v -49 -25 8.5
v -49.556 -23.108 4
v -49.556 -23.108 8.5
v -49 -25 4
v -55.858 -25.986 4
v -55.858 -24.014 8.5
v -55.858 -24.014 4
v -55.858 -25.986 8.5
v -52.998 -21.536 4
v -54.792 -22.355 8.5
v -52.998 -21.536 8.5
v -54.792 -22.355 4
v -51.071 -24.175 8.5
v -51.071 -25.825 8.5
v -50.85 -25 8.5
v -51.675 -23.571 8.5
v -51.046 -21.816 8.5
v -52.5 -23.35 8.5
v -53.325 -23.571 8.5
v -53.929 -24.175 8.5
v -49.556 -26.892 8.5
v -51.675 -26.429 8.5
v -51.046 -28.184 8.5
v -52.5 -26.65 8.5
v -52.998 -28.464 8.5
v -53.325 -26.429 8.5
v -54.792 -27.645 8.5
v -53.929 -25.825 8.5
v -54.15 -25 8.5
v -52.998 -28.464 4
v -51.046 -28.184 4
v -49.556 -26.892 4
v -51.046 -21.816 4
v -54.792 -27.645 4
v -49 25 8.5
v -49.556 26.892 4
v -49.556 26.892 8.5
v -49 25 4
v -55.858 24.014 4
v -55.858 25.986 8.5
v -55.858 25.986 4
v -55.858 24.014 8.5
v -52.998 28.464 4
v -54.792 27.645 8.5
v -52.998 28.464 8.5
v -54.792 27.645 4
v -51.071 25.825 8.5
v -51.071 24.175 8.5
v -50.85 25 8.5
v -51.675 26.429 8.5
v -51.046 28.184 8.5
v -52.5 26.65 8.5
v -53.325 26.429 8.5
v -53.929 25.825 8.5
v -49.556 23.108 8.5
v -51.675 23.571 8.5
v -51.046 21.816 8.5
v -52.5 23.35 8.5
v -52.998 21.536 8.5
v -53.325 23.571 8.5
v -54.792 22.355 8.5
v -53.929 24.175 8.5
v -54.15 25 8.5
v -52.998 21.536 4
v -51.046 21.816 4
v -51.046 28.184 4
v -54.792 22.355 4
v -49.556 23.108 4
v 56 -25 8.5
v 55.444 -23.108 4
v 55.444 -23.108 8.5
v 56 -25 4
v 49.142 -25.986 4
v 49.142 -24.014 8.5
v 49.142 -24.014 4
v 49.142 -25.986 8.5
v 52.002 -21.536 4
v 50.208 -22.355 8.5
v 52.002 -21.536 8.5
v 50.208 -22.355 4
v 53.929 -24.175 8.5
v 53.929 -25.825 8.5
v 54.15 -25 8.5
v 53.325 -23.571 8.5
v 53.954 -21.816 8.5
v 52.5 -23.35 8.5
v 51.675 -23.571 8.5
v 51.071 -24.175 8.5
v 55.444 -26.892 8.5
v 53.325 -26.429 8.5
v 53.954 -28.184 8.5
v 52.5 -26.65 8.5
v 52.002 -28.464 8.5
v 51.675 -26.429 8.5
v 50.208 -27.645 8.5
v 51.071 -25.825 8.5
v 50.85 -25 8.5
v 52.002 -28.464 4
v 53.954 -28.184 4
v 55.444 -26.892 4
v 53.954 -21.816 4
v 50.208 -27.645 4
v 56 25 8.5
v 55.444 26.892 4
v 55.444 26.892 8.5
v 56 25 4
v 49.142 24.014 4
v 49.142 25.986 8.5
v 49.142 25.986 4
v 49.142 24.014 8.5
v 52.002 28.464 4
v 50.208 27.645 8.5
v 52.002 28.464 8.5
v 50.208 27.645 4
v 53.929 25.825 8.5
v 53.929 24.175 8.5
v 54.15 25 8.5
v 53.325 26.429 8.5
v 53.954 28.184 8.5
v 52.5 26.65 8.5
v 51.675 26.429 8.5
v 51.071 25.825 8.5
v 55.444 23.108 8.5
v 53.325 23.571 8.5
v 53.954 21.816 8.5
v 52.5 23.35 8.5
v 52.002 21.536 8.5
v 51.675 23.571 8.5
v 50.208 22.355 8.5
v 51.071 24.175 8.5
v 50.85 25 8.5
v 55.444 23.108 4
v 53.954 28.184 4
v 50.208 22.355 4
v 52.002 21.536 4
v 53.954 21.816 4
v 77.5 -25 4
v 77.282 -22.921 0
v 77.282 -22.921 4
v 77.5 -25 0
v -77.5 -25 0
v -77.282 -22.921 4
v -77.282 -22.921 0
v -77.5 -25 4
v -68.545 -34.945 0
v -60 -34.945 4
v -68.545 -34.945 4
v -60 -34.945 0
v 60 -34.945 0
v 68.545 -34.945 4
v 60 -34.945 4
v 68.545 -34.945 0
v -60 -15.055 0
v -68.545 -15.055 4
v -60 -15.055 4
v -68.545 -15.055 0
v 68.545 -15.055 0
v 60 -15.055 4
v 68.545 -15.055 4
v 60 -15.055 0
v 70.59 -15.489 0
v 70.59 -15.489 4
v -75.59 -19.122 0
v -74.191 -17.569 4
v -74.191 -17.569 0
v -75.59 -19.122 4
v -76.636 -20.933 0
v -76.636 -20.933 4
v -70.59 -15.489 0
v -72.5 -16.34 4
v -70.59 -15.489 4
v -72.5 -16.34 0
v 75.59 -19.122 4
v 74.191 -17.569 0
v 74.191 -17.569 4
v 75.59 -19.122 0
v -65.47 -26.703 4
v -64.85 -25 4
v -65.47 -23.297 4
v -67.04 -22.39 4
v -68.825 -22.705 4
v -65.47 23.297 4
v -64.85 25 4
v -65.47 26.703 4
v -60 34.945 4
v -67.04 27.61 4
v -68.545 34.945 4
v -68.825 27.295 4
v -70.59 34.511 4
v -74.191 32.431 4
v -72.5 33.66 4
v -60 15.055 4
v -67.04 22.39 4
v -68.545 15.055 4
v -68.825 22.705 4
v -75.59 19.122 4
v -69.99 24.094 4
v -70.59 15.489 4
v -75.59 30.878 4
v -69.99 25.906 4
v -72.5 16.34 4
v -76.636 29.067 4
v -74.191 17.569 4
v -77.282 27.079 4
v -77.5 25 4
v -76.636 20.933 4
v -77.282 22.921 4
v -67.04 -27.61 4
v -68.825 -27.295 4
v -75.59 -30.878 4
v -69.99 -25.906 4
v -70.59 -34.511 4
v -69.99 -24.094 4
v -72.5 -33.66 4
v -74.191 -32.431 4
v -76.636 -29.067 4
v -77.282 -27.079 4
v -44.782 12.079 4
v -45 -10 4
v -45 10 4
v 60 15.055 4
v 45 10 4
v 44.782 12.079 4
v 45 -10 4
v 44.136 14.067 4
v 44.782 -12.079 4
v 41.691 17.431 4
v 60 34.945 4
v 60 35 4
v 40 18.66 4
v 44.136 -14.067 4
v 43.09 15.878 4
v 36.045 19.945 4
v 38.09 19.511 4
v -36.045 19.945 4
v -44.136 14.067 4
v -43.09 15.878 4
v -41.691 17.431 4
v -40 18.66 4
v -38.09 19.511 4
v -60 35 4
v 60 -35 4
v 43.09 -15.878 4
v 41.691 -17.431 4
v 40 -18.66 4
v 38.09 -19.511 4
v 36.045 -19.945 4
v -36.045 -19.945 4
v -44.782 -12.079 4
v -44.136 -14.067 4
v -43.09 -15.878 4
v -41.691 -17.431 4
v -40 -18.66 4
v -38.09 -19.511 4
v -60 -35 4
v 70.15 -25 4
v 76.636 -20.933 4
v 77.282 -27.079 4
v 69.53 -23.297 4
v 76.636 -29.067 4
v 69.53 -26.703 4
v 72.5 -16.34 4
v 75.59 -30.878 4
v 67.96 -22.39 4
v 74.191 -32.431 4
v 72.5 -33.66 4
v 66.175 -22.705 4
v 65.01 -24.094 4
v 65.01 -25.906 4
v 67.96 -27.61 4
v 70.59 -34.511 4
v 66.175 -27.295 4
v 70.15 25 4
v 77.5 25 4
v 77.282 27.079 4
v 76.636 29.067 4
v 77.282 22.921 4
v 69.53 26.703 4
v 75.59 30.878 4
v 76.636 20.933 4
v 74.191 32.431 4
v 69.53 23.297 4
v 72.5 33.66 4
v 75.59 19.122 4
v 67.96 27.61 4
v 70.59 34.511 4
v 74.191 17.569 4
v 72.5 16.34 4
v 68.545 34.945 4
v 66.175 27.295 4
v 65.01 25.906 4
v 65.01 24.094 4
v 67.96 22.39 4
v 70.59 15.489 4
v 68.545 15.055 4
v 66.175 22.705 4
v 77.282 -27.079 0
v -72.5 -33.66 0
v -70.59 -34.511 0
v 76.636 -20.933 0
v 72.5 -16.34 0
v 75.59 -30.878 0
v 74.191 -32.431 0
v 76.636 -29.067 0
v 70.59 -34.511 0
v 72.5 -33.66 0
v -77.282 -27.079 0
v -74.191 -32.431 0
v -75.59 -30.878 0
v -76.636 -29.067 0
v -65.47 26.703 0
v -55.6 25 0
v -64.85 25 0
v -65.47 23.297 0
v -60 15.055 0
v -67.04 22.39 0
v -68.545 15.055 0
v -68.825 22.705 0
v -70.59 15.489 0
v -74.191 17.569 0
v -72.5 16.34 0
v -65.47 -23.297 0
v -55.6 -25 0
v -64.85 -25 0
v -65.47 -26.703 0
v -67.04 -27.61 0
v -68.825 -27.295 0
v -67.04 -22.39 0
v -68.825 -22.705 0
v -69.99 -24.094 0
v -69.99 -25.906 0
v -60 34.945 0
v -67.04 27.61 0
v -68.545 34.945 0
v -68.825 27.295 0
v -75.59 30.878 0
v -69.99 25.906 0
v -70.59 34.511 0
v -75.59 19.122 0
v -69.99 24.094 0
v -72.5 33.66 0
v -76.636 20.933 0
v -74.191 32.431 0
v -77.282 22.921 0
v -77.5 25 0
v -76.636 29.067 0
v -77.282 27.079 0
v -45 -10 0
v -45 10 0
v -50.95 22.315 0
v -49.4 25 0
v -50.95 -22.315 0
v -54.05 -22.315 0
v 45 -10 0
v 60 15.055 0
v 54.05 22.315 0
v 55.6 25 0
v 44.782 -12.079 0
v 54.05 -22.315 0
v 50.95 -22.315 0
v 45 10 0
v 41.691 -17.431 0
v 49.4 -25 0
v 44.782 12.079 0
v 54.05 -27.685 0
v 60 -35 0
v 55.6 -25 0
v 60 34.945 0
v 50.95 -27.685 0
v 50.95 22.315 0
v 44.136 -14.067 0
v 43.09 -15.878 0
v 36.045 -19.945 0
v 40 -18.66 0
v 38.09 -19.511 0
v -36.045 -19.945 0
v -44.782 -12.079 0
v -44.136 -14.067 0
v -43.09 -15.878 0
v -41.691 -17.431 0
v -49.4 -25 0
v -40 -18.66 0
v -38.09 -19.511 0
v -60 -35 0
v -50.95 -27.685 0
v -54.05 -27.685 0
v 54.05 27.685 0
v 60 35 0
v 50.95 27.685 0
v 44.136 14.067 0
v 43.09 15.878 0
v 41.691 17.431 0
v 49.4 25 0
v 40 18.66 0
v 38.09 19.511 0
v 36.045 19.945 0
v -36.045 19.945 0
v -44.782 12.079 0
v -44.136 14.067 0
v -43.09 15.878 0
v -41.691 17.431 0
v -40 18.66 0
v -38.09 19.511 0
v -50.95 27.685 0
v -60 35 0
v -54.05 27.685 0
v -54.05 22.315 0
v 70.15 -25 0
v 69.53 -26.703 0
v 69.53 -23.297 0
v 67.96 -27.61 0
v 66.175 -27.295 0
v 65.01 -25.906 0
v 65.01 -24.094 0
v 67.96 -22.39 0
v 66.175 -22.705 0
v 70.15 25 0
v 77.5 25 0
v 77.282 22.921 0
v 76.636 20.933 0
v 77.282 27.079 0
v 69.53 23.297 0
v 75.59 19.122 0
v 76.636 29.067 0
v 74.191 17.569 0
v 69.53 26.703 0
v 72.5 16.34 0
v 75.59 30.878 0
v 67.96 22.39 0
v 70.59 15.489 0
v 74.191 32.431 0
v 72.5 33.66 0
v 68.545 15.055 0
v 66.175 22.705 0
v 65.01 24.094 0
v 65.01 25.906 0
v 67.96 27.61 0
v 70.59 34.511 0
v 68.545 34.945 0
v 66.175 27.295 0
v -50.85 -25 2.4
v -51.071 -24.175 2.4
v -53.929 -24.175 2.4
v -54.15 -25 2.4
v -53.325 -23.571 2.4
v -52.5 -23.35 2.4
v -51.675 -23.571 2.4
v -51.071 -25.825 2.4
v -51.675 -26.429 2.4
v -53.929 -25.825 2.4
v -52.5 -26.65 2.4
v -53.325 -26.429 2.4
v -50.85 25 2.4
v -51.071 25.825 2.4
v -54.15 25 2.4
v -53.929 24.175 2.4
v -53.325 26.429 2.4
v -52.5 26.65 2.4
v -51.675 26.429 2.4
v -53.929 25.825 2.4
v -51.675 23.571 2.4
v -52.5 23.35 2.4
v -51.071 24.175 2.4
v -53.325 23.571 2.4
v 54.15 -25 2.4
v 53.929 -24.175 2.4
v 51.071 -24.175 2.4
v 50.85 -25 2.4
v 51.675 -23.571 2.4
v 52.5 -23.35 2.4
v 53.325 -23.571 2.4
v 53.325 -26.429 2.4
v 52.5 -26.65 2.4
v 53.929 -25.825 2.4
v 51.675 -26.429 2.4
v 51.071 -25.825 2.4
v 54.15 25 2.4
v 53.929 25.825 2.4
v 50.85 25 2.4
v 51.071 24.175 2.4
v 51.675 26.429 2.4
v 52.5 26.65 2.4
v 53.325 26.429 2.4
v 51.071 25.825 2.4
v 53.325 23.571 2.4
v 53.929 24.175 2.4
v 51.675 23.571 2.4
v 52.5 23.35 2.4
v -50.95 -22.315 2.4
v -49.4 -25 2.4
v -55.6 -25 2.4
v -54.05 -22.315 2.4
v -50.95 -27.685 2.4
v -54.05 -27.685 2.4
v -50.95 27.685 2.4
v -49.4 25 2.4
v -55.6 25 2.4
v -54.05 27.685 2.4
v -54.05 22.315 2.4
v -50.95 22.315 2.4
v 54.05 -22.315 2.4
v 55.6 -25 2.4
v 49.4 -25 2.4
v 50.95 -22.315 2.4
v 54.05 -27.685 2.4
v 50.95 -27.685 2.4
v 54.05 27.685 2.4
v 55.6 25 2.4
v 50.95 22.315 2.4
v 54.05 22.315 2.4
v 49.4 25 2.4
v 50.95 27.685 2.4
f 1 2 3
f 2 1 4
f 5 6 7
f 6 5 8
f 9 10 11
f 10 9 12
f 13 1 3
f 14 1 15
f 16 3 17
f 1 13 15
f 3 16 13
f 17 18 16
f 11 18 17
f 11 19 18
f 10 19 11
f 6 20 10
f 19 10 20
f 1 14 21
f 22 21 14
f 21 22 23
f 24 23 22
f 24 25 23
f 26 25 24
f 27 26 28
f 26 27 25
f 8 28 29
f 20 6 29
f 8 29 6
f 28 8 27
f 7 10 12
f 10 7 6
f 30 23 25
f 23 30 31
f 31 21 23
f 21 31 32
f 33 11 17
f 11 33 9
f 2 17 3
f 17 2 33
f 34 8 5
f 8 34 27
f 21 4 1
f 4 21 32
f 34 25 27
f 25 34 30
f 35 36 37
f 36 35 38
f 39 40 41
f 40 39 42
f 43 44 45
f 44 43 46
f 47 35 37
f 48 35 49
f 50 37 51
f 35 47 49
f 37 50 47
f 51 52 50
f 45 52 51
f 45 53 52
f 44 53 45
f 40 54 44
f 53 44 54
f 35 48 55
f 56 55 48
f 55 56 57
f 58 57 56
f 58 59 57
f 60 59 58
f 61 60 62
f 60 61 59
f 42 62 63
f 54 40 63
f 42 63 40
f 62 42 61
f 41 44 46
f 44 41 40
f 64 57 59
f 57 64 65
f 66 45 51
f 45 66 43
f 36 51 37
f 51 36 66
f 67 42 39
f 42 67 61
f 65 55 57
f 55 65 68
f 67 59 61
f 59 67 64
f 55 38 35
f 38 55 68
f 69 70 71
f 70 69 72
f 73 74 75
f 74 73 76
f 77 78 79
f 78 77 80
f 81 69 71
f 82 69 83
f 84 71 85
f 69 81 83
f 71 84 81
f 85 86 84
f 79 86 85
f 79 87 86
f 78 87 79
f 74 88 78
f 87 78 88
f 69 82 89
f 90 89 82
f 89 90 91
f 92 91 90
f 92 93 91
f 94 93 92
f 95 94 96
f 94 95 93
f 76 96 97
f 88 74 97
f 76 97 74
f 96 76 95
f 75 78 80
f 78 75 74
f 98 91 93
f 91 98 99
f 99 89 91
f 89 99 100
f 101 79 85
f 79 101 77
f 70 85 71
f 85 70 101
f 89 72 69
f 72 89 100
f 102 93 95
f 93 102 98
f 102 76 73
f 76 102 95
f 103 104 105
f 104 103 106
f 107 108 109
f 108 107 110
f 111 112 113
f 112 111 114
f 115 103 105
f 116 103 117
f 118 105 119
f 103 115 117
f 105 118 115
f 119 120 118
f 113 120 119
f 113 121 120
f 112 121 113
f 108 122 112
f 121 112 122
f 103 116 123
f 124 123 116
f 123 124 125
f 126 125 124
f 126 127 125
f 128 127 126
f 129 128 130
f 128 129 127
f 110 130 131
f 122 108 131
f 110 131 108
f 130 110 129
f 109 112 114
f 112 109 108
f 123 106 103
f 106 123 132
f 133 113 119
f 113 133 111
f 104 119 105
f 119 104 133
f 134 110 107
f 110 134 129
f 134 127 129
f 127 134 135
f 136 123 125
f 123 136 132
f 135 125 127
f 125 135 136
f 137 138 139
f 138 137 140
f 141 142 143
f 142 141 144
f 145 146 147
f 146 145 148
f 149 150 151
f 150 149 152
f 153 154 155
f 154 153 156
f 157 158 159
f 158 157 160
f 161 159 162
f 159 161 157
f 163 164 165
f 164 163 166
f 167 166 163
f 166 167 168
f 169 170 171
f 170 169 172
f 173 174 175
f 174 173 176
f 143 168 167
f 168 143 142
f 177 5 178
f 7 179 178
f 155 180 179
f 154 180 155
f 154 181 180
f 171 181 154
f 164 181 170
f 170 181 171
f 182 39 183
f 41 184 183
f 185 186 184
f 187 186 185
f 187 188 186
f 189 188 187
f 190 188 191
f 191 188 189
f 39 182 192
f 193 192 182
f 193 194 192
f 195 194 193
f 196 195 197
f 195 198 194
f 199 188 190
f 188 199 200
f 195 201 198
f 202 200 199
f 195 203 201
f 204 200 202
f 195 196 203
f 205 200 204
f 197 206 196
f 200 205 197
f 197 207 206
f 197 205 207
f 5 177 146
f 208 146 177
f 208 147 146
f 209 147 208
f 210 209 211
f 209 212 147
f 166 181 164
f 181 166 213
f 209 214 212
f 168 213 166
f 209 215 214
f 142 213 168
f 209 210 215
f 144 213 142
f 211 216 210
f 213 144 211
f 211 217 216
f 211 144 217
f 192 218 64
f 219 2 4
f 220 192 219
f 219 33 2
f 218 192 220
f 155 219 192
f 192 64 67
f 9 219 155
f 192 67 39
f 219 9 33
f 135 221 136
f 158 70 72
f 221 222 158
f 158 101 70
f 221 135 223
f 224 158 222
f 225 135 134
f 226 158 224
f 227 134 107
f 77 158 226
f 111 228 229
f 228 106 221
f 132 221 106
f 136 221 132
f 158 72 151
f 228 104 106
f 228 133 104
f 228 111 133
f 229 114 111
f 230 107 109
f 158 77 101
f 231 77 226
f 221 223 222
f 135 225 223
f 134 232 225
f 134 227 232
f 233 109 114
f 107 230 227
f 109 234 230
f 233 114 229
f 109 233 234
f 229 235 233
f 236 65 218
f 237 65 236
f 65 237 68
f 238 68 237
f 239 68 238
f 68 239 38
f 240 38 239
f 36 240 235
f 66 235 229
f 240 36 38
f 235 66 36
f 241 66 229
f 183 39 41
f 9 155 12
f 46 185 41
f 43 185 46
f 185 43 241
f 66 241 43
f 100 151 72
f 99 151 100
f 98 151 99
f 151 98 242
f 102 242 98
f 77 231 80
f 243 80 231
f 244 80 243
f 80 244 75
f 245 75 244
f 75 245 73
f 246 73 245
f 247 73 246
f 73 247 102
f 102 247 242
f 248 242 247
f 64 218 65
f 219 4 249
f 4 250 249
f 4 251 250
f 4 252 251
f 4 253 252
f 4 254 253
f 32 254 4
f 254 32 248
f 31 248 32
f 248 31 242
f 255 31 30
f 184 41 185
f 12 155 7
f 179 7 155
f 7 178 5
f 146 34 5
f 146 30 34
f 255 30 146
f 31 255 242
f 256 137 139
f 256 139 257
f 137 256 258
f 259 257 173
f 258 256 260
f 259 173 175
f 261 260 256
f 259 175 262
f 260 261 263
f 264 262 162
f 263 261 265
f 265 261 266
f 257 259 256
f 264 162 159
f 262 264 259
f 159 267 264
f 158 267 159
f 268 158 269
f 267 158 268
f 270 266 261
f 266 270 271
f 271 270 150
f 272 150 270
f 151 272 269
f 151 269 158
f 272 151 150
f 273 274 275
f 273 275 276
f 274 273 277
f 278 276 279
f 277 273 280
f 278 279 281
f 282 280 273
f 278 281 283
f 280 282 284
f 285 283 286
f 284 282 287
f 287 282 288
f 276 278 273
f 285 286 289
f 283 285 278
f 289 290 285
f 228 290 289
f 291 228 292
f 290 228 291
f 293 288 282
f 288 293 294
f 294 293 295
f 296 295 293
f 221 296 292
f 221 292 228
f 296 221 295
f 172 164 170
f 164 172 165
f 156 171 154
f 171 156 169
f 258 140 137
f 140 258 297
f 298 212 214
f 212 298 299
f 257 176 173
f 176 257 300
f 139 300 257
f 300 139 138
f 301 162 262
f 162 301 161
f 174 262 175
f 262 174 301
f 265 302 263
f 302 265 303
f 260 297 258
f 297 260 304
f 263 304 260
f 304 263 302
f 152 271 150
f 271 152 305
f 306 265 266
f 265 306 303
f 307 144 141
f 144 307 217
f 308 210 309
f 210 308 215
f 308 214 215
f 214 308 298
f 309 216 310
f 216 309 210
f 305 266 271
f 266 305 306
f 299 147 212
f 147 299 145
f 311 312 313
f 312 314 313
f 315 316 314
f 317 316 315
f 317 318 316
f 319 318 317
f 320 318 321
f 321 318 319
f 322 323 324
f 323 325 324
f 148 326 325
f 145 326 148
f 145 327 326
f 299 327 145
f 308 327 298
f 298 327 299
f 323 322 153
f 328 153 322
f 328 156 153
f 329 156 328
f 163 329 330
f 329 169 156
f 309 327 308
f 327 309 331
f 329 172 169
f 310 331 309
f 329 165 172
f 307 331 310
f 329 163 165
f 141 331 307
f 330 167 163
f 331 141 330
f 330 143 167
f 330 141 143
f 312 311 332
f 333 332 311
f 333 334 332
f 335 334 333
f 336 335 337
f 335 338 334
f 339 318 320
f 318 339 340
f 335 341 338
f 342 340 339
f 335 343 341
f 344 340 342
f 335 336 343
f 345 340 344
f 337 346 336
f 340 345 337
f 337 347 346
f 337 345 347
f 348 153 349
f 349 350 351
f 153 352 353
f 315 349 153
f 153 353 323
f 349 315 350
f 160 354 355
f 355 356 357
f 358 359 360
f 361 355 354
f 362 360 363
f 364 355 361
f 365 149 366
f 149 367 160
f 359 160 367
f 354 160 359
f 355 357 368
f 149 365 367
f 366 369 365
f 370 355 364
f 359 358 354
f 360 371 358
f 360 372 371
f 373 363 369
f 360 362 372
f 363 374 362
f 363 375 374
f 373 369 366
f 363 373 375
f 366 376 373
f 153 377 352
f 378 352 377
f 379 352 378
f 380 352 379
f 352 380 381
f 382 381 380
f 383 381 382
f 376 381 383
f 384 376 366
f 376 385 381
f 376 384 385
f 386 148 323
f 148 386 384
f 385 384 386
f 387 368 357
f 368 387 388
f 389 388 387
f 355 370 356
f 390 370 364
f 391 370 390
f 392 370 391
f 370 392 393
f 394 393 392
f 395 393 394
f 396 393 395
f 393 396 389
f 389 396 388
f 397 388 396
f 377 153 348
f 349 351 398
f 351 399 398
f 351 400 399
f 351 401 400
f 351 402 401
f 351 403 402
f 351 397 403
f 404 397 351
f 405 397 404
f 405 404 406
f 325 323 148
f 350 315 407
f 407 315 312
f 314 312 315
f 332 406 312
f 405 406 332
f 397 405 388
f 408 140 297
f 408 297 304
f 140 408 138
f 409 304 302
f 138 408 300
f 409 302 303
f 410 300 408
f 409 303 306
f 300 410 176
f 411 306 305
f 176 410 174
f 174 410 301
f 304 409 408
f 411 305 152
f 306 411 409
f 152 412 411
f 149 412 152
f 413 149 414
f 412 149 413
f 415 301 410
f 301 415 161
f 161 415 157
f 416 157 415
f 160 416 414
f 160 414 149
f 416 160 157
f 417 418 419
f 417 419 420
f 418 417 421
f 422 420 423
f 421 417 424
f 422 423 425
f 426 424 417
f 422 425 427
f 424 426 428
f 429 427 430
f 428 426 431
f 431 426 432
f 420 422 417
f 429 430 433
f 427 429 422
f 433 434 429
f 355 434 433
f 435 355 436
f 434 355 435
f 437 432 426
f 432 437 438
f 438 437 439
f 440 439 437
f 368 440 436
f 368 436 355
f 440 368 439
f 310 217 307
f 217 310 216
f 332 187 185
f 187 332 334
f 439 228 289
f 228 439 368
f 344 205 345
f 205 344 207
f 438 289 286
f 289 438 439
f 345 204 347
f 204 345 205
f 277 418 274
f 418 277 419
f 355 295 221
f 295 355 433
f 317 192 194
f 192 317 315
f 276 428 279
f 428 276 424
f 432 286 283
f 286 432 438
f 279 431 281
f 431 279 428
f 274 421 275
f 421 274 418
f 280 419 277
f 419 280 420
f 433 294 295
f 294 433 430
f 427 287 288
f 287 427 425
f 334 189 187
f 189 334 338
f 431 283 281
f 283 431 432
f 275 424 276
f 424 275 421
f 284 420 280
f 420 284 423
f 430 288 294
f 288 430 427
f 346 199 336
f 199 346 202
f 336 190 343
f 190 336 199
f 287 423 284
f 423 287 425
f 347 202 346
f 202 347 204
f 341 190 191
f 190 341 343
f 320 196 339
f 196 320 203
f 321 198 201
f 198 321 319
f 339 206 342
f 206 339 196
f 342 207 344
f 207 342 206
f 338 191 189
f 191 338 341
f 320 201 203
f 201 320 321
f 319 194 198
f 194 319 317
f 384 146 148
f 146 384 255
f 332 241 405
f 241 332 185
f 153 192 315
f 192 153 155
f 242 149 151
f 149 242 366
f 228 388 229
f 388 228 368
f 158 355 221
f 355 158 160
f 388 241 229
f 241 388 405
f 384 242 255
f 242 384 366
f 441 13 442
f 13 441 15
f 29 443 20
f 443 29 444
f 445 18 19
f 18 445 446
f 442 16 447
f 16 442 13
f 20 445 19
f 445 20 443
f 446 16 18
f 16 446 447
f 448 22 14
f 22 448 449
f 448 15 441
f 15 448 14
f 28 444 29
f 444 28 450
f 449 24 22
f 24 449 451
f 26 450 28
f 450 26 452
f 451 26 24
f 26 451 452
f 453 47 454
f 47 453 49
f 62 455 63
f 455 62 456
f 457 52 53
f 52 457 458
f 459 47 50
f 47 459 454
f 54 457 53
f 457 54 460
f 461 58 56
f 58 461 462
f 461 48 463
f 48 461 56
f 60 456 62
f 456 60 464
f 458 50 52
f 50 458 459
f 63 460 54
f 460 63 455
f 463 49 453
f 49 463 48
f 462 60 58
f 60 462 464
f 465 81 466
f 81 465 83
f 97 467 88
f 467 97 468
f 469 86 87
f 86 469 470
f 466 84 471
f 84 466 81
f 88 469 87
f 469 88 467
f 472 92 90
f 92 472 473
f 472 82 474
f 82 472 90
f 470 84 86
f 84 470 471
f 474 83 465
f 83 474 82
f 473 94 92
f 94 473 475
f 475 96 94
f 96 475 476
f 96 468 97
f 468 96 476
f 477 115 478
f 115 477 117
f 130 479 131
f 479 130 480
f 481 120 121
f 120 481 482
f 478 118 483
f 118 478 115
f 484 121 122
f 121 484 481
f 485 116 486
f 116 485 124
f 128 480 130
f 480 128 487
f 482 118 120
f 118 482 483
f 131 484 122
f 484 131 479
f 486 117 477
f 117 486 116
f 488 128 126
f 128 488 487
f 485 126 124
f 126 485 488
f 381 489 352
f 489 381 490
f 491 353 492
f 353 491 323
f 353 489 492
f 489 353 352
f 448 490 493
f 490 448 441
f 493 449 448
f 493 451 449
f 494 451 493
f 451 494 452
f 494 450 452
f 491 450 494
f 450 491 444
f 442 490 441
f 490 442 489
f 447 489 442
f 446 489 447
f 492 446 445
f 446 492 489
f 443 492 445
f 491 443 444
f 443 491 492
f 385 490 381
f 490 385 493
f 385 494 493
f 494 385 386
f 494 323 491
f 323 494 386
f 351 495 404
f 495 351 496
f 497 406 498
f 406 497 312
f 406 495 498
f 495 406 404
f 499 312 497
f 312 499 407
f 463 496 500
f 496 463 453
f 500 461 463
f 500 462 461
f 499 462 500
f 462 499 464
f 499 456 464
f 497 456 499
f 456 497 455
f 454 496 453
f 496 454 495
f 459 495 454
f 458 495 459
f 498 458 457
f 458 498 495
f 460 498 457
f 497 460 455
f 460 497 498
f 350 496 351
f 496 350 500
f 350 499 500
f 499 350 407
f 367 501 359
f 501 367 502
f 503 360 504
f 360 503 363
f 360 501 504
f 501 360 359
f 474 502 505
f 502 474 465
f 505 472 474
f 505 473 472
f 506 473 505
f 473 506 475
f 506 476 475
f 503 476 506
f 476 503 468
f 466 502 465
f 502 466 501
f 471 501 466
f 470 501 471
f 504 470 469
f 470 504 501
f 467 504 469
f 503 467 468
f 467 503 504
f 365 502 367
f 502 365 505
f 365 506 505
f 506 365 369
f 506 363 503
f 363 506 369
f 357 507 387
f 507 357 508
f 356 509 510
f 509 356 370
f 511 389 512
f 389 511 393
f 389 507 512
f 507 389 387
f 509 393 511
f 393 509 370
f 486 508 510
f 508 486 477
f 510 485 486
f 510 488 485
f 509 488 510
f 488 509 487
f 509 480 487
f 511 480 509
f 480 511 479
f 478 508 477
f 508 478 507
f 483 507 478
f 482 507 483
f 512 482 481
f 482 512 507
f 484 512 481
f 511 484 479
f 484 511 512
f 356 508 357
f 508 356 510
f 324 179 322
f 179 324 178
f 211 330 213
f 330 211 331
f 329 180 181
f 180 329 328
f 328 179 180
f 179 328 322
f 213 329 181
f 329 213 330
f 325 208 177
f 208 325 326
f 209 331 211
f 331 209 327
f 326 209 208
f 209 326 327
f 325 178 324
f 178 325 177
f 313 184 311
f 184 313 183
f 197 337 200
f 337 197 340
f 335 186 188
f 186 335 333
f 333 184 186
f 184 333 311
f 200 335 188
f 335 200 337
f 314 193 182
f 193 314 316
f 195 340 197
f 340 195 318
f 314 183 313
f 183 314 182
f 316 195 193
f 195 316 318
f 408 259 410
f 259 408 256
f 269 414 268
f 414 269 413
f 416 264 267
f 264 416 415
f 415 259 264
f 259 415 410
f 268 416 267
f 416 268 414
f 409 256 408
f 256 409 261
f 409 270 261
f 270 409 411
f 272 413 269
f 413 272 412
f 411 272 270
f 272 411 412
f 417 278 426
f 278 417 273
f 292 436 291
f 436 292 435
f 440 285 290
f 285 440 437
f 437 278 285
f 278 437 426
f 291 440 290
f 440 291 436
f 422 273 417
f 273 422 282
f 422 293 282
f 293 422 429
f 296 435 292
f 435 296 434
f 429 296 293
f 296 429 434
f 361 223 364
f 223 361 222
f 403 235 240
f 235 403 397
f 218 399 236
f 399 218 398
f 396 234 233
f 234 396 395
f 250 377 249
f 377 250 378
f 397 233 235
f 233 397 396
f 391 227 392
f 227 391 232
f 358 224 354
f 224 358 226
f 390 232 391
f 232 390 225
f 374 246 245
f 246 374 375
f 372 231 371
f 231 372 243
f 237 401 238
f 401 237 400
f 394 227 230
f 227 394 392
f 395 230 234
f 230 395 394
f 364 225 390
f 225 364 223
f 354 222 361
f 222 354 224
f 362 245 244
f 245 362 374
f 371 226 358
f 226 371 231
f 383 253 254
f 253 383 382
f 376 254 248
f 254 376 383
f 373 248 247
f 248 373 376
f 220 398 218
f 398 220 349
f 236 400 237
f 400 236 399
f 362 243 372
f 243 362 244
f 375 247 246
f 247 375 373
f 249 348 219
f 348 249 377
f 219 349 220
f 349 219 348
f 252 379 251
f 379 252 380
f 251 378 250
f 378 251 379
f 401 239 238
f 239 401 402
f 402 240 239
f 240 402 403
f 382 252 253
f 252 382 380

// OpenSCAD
hole_width = 105;
hole_height = 50;

*translate([0,0,10])
cube([100,59.69,1.6],center=true);

difference(){
    union() {
        //boardmount
        for(i=[-1,1]){
            for(j=[-1,1]){
                translate([i*hole_width/2,j*hole_height/2,1]){
                    cylinder(r=7/2,h=8.5-1);
                }
            }
        }
        translate([0,0,2]){
            cube([100+20,70,4],center=true);
        }
        for(j=[-1,1]){
            hull(){
                for(i=[-1,1]){
                    translate([i*(hole_width+30)/2,j*50/2,2]){
                        cylinder(r=10,h=4,center=true);
                    }
                }
            }
        }
    }
    hull(){
        for(i=[-1,1]){
            for(j=[-1,1]){
                translate([i*70/2,j*20/2,0]){
                    cylinder(r=10,h=10,center=true);
                }
            }
        }
    }
    //boardmount
    for(i=[-1,1]){
        for(j=[-1,1]){
            translate([i*hole_width/2,j*hole_height/2,0]){
                cylinder($fn=12,r=3.3/2,h=30,center=true);
            }
        }
    }
    //boardmount
    for(i=[-1,1]){
        for(j=[-1,1]){
            translate([i*hole_width/2,j*hole_height/2,0]){
                cylinder($fn=6,r=6.2/2,h=2.4*2,center=true);
            }
        }
    }
    //alumount
    for(i=[-1,1]){
        for(j=[-1,1]){
            translate([i*(hole_width+30)/2,j*50/2,0]){
                cylinder(r=5.3/2,h=10,center=true);
            }
        }
    }
}
